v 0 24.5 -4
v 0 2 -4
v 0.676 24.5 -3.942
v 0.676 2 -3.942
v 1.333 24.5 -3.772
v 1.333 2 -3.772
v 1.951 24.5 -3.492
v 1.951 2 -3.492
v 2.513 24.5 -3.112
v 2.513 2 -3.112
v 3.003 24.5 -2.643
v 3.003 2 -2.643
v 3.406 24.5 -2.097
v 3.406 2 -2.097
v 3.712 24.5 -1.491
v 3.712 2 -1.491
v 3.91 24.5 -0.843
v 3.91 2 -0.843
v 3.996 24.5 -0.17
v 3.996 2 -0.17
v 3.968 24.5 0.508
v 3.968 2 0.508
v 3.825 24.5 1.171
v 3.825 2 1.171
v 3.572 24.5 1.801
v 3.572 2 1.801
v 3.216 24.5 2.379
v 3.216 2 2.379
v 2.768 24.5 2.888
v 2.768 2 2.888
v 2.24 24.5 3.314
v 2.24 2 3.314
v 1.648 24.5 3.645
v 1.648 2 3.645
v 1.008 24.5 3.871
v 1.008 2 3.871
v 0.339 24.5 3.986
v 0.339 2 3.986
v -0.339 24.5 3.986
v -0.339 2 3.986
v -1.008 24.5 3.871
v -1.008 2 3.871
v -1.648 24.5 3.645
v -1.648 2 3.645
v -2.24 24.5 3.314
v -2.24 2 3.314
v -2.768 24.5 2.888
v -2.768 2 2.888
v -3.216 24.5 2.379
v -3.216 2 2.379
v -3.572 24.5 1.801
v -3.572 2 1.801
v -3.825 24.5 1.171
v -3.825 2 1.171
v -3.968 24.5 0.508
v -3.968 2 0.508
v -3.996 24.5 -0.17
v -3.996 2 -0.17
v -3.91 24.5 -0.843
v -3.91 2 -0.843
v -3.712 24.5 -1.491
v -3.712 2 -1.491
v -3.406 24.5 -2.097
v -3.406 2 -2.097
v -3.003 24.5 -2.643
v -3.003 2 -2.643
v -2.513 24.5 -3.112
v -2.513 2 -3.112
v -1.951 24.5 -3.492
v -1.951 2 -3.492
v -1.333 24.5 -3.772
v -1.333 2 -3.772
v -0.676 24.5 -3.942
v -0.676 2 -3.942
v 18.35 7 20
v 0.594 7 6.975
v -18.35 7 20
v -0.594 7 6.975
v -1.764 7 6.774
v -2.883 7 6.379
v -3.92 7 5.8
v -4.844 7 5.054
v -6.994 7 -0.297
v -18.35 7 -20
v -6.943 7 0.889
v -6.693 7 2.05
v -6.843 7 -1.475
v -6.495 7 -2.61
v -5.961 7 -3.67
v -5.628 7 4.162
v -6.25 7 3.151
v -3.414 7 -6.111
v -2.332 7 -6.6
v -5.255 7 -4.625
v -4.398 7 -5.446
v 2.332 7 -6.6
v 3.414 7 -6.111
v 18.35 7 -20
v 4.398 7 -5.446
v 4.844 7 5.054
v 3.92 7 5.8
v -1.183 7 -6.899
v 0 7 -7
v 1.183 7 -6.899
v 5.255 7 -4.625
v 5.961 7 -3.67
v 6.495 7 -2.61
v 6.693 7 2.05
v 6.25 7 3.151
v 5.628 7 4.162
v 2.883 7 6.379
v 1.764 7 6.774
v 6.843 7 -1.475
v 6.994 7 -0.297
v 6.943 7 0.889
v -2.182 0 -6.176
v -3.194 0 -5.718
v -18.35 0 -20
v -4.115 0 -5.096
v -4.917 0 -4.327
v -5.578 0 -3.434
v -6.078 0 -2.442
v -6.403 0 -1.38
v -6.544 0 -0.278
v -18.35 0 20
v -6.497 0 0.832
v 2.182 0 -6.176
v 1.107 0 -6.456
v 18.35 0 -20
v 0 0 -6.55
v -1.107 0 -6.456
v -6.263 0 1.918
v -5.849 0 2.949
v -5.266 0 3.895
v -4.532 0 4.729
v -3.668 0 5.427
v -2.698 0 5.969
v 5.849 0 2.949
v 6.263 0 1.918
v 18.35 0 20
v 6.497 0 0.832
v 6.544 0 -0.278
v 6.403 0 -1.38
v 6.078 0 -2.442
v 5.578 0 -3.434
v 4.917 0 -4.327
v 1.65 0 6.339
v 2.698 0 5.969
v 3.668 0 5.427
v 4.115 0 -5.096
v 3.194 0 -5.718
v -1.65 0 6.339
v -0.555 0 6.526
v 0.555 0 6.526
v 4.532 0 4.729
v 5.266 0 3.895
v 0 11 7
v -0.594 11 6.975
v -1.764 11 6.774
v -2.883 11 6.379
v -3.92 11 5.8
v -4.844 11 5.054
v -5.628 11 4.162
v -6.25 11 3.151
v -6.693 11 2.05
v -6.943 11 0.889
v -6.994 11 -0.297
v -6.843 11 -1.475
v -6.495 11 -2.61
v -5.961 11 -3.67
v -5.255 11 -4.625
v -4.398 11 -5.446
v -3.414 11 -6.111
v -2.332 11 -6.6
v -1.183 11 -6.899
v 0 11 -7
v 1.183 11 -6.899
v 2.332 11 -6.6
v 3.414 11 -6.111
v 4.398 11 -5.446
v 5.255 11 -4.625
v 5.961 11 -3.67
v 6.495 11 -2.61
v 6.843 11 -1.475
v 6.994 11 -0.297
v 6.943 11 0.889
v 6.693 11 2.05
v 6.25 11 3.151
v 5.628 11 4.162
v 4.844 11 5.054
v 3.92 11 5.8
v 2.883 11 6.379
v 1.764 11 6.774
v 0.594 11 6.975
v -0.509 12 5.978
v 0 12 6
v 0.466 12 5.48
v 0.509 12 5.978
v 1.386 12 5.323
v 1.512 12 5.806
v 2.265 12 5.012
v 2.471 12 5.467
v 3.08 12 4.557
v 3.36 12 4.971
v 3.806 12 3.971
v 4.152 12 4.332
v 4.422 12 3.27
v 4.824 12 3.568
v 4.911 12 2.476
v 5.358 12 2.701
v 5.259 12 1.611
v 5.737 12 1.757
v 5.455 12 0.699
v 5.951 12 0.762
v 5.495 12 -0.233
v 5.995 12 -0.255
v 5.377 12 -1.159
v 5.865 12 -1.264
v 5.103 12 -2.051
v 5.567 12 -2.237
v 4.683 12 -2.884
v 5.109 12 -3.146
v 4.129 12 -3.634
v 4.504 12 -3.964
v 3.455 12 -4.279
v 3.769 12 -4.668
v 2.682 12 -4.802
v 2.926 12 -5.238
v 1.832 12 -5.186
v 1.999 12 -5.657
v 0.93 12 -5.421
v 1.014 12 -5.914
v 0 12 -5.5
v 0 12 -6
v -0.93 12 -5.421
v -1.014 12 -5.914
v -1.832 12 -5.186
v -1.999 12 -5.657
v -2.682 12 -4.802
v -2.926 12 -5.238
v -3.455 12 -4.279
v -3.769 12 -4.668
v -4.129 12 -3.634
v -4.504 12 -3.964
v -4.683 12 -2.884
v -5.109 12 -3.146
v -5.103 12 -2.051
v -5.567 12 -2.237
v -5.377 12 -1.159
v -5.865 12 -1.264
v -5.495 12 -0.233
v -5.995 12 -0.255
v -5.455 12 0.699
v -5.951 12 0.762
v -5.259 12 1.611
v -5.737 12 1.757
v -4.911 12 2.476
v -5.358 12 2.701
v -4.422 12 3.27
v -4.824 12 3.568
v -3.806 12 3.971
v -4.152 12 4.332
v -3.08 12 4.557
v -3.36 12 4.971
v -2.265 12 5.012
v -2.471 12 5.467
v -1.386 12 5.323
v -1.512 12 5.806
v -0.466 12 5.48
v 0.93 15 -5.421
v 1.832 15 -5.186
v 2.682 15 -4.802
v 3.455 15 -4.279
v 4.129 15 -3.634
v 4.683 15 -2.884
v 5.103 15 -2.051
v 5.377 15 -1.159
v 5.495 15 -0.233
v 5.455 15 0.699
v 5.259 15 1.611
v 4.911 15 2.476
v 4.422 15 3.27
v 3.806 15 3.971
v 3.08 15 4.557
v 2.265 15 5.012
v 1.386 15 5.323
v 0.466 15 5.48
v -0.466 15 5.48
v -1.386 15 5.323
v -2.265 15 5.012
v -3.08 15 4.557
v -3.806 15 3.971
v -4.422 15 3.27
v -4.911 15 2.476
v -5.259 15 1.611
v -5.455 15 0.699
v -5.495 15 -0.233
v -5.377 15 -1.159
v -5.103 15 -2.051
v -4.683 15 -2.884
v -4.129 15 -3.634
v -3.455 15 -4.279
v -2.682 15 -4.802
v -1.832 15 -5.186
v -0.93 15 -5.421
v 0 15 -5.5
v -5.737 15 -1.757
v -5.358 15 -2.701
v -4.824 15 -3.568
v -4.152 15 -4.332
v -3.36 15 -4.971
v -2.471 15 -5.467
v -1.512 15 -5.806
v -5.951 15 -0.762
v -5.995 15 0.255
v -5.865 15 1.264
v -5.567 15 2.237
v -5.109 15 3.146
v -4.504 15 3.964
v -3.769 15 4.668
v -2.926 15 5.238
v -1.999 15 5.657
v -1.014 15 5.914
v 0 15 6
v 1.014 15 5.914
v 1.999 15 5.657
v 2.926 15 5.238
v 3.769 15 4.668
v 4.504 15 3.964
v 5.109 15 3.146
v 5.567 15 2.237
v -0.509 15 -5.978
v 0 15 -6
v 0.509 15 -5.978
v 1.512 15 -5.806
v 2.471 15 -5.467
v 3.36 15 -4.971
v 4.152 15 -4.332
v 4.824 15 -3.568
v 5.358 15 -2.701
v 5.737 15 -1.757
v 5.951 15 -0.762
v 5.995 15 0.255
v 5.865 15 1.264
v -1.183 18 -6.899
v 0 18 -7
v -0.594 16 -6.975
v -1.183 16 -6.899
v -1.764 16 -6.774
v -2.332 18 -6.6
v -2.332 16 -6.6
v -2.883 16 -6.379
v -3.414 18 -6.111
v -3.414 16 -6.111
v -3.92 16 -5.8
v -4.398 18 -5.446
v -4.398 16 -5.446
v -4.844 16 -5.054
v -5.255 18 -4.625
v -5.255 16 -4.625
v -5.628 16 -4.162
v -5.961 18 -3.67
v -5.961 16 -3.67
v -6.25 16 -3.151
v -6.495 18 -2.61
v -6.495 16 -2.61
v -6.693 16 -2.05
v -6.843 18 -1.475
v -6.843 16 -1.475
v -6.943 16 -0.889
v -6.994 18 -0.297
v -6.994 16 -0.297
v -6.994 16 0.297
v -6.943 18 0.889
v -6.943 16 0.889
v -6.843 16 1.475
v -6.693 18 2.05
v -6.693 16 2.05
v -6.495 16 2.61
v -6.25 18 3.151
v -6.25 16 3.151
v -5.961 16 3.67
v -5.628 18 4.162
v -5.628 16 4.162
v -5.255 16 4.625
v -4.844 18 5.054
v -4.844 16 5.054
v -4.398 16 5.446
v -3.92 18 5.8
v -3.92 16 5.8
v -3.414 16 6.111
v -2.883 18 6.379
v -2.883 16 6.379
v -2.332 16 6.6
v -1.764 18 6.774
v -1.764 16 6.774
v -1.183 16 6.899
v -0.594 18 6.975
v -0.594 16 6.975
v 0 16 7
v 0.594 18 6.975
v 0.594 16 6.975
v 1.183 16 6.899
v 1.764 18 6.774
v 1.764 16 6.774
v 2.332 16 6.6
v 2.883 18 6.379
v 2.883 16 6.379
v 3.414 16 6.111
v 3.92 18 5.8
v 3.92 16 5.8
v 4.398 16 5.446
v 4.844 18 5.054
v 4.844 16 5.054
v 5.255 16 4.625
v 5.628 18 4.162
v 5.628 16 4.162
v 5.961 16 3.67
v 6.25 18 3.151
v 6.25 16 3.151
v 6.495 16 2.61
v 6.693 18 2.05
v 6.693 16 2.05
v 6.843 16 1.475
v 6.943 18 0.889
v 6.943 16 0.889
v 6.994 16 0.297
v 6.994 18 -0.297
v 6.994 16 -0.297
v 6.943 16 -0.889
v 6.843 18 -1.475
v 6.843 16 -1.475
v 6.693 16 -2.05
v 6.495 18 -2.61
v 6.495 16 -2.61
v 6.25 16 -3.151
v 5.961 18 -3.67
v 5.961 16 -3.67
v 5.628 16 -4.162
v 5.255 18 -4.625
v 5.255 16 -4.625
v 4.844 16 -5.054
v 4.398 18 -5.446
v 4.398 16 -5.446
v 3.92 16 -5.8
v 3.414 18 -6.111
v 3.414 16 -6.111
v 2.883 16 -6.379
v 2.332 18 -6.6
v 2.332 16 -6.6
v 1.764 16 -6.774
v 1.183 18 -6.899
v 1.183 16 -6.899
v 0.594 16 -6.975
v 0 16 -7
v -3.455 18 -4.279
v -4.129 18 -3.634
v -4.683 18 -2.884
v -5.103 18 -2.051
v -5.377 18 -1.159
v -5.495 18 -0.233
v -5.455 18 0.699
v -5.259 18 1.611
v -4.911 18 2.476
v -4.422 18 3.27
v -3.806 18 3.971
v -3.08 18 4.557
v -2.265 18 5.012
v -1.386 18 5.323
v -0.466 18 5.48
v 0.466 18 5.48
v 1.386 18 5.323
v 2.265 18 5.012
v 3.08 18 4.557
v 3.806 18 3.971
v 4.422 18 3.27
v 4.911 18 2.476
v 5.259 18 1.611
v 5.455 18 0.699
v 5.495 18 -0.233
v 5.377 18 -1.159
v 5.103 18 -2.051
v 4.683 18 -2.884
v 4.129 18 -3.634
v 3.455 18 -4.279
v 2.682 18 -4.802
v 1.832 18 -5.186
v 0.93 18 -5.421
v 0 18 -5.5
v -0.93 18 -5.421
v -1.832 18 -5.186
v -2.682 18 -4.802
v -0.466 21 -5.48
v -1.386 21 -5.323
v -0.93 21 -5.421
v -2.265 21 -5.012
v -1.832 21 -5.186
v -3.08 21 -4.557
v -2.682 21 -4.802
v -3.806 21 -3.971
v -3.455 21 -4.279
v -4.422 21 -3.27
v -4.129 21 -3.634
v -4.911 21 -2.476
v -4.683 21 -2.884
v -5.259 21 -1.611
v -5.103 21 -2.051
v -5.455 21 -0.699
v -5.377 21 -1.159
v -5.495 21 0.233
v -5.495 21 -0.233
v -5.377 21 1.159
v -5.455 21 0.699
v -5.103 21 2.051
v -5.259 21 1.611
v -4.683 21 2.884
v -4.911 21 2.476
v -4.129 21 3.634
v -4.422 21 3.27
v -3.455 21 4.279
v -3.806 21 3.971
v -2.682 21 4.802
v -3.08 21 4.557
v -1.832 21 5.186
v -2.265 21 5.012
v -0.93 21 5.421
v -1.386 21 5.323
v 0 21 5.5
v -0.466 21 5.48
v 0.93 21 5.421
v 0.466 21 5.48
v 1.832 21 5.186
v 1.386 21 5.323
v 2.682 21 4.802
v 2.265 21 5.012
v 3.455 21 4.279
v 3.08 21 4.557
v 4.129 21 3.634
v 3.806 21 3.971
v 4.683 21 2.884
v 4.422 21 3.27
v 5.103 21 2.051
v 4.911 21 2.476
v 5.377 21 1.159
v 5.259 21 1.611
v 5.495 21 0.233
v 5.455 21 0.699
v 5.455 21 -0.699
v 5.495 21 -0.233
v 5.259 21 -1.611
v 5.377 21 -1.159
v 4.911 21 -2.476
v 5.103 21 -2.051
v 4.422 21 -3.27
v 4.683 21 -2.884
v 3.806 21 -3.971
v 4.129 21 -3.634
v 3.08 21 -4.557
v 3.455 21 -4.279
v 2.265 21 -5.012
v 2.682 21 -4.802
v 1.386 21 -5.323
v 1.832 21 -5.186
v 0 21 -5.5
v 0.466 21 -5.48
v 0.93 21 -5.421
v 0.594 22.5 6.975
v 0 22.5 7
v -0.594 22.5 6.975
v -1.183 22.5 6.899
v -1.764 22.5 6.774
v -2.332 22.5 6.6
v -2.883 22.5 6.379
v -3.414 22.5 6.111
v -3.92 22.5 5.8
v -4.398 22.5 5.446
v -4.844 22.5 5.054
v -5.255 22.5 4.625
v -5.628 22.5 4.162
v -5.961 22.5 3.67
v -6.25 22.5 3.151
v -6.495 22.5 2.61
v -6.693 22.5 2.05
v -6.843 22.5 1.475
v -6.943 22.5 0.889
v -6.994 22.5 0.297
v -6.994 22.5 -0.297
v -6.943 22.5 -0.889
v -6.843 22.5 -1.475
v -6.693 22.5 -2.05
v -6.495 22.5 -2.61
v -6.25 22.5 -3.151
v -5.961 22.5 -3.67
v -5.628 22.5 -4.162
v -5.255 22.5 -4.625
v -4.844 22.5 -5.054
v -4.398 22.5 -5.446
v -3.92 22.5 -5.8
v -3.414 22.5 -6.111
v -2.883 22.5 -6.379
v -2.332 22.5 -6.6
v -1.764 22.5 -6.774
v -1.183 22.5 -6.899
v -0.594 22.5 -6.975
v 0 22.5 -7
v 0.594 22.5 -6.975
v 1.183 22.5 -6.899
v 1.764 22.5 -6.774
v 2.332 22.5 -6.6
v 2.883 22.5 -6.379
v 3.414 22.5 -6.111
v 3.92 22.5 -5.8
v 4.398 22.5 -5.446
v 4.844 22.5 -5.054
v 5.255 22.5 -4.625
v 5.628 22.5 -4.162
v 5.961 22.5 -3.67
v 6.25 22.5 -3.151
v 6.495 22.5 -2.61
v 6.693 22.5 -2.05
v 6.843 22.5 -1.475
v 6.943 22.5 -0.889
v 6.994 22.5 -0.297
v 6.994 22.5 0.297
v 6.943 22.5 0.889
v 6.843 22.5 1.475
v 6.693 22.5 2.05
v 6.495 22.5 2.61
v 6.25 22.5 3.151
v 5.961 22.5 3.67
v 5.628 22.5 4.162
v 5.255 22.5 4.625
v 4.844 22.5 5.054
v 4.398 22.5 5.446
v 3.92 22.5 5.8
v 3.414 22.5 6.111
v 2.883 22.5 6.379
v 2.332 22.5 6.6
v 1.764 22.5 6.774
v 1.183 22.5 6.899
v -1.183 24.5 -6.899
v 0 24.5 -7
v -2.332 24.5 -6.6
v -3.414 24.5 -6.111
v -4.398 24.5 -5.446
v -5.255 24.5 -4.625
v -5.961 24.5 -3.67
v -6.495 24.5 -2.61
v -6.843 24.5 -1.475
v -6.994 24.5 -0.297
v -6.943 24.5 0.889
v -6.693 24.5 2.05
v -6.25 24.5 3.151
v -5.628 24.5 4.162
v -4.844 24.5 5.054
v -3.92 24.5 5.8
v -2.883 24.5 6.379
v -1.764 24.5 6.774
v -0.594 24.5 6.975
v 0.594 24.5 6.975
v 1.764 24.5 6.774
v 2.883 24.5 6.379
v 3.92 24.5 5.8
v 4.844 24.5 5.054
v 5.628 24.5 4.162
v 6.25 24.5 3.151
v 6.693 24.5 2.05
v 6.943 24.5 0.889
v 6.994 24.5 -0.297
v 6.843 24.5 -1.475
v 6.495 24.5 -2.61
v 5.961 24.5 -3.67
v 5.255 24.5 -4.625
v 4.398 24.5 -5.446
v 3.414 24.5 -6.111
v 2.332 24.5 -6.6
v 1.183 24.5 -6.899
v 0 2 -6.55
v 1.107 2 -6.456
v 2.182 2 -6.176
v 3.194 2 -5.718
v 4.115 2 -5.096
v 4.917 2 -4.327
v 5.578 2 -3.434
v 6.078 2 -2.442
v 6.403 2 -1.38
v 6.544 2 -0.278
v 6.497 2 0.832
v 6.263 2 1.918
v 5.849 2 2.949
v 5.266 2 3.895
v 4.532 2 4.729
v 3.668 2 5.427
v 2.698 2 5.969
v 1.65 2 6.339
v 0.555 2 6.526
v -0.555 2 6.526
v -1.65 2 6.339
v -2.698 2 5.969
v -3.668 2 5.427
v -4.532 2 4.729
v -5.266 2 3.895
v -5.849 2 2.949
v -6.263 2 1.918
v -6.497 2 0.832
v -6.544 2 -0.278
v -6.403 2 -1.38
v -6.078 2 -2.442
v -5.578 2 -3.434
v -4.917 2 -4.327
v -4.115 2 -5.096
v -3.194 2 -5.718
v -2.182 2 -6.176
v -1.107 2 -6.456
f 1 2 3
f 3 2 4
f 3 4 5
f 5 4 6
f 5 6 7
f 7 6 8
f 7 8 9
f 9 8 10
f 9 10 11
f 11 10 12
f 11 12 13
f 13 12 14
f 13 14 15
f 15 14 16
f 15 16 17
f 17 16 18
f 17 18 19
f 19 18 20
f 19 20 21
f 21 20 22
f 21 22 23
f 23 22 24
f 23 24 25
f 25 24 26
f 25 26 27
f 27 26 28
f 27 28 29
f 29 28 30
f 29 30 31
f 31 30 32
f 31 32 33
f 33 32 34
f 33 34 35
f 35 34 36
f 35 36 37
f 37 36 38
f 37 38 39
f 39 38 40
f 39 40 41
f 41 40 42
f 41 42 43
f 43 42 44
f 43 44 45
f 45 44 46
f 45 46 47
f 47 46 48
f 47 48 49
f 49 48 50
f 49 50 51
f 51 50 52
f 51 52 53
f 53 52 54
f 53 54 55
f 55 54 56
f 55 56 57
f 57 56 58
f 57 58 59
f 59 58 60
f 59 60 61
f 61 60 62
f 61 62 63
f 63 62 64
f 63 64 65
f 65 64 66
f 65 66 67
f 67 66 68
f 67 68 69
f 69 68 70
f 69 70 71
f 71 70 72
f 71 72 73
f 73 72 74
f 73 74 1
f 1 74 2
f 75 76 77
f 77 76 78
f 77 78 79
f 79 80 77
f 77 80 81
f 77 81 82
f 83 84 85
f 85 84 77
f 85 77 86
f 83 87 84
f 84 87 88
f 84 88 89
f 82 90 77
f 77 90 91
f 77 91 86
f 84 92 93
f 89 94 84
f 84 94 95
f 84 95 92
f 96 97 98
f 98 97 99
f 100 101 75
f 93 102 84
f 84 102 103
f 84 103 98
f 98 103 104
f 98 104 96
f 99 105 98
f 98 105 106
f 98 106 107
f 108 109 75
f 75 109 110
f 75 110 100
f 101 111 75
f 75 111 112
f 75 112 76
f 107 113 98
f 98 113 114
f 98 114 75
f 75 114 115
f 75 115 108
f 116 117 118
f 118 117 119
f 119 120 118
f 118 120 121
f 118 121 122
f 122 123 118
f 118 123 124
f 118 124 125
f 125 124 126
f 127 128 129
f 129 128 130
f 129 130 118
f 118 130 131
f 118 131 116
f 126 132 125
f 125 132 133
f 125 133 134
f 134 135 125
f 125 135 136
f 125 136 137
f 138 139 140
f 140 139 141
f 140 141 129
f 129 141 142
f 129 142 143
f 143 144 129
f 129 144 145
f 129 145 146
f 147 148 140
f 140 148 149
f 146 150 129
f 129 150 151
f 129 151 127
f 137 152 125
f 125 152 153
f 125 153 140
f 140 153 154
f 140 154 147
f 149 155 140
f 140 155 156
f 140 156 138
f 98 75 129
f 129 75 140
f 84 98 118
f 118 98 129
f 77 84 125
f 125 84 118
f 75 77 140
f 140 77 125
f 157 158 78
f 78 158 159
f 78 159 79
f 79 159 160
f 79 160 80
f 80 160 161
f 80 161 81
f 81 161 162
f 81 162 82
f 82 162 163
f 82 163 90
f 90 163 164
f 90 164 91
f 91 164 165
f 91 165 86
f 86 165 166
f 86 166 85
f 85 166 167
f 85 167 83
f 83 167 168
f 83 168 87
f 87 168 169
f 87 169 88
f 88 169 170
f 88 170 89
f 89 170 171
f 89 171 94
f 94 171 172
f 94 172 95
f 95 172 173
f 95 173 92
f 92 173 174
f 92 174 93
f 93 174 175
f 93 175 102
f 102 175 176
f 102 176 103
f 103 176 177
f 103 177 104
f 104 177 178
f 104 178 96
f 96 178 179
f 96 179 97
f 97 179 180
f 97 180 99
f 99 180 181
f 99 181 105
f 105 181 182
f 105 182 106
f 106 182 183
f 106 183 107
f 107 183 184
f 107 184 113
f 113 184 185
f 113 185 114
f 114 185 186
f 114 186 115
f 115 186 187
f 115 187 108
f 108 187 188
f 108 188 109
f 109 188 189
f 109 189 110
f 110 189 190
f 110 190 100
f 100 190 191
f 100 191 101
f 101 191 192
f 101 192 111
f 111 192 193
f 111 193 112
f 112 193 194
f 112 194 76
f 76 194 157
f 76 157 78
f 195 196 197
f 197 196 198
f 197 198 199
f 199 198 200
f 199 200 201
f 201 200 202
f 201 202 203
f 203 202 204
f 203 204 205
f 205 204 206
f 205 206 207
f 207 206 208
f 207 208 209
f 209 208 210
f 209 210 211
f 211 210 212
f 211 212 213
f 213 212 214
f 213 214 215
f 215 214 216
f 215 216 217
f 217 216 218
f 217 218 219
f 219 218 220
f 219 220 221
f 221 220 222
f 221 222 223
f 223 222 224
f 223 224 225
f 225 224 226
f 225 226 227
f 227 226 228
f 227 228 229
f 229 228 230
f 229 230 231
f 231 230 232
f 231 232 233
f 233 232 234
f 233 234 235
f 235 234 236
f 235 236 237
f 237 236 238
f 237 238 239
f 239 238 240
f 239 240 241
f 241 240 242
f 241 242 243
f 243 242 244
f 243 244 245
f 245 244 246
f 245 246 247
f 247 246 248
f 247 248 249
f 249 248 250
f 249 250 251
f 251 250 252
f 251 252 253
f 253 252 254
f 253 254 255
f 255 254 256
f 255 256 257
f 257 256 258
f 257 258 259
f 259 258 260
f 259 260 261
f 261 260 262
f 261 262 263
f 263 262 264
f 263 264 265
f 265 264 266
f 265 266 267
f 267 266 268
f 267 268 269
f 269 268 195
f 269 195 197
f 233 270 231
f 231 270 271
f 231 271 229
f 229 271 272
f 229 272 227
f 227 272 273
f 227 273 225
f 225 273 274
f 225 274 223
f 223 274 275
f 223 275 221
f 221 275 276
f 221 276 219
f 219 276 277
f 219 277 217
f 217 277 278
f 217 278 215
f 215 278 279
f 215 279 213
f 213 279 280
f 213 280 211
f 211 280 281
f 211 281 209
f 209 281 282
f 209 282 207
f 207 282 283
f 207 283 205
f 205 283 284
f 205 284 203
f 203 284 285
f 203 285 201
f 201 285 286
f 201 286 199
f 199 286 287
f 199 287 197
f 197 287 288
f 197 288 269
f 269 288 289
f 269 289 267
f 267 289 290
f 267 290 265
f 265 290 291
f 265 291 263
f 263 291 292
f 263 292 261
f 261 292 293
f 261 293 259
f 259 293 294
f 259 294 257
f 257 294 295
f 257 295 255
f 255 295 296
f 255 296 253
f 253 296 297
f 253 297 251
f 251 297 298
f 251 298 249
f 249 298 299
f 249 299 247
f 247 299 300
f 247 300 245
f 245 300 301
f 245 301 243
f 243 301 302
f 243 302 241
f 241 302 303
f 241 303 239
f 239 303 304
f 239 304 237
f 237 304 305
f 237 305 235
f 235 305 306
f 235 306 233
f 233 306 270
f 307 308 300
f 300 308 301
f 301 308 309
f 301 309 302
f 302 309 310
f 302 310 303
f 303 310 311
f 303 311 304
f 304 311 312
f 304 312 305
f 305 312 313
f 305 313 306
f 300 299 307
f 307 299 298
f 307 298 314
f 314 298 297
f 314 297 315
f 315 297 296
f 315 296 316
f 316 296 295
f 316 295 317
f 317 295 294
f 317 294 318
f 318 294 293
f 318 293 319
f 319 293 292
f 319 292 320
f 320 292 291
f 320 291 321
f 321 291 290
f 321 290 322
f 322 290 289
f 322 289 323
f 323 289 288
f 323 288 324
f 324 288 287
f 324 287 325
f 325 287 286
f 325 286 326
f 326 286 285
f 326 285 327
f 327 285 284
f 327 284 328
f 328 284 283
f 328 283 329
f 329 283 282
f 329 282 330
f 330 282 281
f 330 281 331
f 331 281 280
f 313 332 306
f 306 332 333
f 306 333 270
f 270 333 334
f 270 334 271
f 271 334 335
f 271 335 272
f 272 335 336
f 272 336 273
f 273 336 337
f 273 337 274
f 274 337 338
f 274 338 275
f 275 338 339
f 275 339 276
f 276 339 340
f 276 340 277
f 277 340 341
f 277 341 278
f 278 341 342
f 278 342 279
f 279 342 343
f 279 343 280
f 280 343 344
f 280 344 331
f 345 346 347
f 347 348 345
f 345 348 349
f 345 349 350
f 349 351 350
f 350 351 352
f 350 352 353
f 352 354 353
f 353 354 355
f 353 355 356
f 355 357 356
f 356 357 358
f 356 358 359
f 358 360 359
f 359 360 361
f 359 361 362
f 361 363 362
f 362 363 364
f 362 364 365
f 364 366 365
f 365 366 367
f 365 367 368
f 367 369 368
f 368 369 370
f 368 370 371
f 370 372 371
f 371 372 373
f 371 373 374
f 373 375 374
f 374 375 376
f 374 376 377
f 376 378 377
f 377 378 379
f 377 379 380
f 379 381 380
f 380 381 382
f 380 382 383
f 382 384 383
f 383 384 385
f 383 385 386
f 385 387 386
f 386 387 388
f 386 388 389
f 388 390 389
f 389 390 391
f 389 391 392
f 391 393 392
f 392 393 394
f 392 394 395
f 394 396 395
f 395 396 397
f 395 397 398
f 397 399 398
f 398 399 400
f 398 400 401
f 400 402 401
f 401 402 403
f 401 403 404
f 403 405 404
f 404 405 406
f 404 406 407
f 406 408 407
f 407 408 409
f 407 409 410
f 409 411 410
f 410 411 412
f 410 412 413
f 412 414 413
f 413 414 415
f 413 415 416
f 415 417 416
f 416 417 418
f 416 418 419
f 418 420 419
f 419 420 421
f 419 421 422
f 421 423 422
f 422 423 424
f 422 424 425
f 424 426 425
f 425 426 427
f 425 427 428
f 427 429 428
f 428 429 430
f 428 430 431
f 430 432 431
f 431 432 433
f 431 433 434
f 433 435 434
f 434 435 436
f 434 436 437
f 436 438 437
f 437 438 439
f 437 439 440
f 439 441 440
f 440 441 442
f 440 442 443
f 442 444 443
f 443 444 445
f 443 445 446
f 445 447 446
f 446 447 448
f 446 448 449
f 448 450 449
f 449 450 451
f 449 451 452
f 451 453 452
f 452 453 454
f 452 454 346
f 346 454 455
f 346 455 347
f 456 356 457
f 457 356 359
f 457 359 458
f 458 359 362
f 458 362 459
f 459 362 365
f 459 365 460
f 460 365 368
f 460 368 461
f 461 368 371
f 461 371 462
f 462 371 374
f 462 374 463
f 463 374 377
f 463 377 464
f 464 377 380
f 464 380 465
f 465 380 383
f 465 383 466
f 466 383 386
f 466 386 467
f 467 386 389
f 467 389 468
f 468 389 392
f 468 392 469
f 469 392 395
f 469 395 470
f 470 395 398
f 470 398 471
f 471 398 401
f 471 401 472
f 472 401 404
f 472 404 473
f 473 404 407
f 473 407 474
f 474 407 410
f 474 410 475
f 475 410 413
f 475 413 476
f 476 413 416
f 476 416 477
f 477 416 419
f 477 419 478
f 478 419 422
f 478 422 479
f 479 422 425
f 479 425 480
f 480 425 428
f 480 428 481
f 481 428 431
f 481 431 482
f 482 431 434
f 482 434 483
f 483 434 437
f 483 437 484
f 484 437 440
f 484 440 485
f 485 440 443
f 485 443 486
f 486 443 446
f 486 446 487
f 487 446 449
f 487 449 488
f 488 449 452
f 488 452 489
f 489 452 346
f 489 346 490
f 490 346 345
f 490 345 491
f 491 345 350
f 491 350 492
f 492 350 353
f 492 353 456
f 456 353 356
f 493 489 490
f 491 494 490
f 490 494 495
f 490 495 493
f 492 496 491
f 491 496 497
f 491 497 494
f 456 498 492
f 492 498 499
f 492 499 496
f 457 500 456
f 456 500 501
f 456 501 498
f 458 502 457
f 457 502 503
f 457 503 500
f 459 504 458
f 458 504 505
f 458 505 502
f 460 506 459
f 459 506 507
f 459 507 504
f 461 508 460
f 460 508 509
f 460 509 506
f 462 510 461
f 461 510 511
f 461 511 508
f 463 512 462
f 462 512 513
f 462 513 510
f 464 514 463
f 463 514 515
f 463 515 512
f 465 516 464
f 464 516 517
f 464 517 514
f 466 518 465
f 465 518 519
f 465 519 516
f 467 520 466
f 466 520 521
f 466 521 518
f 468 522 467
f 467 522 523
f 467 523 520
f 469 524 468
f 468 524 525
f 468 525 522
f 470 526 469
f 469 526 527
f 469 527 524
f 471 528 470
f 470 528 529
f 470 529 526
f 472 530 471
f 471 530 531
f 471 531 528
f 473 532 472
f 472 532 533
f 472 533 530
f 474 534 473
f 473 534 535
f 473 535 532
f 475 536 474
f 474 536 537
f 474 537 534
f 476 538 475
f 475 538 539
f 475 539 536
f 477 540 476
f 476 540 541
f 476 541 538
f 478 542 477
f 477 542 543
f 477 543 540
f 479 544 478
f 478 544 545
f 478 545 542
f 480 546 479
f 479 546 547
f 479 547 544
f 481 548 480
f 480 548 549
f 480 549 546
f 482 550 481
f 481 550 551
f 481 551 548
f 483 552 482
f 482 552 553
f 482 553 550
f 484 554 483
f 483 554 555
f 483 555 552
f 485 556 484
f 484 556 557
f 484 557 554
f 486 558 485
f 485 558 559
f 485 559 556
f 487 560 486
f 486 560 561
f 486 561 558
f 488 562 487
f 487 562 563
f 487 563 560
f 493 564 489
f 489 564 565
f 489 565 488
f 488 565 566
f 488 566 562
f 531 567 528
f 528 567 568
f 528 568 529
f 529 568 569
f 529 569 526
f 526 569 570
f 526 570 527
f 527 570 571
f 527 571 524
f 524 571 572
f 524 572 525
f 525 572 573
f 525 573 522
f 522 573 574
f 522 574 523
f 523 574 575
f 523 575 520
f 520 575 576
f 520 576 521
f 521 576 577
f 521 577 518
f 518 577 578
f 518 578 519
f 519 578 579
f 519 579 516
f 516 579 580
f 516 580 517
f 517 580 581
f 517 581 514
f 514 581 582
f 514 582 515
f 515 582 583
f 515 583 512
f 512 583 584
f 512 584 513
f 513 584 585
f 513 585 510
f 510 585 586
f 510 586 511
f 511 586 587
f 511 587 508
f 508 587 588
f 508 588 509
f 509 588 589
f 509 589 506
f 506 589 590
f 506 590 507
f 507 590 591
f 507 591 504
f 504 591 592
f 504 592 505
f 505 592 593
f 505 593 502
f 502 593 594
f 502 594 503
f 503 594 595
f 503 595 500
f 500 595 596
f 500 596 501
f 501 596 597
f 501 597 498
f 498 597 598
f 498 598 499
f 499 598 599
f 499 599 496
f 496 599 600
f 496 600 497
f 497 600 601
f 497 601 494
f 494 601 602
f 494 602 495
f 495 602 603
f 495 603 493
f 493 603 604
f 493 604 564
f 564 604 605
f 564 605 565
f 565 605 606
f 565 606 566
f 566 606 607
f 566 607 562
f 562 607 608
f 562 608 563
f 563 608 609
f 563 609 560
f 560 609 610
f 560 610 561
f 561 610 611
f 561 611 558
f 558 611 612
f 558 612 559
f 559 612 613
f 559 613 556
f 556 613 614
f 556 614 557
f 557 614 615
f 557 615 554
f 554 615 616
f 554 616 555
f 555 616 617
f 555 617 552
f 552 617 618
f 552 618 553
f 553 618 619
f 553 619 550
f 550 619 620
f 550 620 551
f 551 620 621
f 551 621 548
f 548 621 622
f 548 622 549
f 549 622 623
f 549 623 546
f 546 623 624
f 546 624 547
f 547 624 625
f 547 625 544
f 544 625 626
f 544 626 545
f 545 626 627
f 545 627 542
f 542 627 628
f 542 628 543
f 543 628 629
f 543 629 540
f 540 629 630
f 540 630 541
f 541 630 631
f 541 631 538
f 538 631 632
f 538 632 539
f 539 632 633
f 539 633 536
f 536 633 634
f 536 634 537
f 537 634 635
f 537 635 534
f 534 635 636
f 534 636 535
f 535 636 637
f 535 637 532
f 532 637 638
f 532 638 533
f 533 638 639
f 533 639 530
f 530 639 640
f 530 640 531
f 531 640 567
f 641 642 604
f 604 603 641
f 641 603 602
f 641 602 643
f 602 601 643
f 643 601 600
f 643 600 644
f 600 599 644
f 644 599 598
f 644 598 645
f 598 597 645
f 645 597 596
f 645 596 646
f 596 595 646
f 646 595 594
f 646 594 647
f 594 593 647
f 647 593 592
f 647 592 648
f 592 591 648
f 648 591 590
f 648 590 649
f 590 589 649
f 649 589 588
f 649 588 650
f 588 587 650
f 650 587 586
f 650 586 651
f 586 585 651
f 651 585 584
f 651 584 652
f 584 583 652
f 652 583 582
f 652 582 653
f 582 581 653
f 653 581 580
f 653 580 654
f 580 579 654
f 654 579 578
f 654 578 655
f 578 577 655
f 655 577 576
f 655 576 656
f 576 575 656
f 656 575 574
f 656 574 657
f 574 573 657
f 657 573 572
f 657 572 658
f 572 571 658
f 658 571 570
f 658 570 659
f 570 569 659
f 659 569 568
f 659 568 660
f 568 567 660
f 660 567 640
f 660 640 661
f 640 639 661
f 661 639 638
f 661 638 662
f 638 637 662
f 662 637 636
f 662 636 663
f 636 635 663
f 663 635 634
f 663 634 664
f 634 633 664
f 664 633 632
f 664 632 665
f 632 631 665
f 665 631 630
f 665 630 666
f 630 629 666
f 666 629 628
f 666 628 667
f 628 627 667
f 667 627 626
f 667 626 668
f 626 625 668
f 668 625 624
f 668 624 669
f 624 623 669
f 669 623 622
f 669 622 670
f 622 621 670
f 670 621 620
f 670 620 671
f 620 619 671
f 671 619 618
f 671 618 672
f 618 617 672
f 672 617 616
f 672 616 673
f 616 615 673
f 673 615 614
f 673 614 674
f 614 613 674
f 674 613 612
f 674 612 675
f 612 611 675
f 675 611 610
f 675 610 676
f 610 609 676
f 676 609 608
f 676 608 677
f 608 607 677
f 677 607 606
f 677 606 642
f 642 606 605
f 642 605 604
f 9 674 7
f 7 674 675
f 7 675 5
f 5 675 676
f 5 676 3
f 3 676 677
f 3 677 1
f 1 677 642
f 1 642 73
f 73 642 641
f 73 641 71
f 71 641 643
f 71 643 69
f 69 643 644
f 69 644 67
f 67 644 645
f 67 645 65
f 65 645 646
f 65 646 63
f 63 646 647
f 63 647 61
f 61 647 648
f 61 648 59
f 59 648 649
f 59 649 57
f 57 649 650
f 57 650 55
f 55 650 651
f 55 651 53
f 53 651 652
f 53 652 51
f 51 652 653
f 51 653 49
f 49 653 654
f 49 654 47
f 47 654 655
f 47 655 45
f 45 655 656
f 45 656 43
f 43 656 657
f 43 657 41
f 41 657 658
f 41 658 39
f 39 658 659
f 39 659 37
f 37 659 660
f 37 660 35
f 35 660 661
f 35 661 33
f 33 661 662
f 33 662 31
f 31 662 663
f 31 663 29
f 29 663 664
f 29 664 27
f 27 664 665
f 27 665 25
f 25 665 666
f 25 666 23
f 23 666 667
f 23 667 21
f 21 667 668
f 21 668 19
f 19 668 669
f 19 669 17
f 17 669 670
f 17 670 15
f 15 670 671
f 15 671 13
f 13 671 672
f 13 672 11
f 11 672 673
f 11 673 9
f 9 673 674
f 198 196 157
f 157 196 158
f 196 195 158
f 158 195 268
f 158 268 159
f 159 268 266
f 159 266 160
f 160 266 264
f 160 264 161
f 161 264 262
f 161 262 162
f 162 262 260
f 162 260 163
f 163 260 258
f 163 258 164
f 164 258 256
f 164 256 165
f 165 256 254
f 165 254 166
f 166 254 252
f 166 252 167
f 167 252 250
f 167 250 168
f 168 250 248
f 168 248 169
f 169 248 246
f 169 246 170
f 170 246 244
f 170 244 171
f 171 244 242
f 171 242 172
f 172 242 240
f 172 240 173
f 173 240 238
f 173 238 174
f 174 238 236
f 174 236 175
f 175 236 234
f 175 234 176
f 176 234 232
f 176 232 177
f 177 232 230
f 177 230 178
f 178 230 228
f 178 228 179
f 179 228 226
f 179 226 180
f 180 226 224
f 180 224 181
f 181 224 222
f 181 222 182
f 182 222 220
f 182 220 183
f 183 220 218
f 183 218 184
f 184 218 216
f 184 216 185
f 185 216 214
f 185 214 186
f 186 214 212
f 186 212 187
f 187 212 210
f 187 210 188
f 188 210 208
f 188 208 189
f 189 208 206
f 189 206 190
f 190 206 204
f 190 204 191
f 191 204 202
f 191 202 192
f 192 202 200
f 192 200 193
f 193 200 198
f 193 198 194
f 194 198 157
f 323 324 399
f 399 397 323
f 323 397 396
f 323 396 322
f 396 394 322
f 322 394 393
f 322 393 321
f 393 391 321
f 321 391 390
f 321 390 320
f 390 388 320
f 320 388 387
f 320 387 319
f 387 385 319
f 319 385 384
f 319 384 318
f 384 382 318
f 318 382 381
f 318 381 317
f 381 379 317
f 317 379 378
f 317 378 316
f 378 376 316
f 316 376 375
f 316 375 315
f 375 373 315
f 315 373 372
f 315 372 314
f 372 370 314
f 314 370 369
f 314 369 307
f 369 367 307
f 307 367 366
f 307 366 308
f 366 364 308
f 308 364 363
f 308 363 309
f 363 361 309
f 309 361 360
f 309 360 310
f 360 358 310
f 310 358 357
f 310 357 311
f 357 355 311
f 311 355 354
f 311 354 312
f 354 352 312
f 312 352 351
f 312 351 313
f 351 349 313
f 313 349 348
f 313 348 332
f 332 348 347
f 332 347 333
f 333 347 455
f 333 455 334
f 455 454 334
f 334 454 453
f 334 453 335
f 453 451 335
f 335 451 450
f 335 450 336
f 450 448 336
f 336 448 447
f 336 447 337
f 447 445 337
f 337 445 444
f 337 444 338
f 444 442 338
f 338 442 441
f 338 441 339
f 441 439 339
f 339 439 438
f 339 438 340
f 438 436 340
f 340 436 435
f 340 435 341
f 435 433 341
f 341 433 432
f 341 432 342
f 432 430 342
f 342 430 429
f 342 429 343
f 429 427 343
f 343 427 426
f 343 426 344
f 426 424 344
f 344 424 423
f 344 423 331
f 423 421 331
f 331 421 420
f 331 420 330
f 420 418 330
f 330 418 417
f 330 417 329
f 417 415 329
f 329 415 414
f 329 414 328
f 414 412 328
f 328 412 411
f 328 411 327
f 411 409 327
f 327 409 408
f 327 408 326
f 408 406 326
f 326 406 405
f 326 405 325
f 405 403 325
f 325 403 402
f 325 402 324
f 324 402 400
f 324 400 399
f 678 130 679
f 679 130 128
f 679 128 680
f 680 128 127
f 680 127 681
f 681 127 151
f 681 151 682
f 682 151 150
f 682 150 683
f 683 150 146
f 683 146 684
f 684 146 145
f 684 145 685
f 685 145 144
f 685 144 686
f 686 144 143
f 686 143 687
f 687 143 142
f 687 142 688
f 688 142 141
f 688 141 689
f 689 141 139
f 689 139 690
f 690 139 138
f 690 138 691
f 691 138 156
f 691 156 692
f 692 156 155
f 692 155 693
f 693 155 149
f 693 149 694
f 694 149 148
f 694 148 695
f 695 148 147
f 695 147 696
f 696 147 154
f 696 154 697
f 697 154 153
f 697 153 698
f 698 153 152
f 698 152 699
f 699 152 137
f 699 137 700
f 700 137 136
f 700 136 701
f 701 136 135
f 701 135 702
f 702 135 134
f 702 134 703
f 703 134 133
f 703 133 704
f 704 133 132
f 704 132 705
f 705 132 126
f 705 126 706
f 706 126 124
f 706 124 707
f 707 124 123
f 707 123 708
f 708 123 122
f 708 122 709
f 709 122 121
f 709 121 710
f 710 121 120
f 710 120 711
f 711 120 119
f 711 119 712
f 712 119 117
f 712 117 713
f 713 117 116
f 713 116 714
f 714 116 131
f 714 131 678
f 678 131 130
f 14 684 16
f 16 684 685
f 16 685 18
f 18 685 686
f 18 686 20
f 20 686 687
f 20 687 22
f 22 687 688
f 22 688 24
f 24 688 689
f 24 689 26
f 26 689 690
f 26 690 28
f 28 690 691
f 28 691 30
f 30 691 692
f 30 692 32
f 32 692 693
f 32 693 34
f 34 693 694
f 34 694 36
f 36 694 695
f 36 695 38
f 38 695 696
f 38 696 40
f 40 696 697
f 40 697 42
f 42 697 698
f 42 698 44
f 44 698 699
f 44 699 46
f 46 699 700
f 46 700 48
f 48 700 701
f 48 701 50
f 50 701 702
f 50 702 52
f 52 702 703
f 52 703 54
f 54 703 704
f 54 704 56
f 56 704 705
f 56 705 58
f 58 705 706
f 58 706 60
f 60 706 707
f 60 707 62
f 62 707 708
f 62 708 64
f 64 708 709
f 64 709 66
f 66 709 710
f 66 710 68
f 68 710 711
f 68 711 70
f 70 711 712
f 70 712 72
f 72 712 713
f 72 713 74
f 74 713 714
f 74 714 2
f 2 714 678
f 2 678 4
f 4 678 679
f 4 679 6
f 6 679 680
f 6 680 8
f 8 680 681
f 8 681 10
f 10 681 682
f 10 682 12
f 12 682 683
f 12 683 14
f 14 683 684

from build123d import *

# Parameters (mm, degrees)
CROQUIS1_W              = 36.7
CROQUIS1_H              = 40
CROQUIS1_R              = 4
SALIENTE_EXTRUIR1_DEPTH = 7
CHAFL_N1_SIZE           = 1
CROQUIS3_R              = 6.55
CORTAR_EXTRUIR1_DEPTH   = 2


with BuildPart() as part:
    # Croquis1 → Saliente-Extruir1 (new body)
    with BuildSketch(Plane(origin=(0, 0, 0), x_dir=(1, 0, 0), z_dir=(0, 1, 0))):
        Rectangle(CROQUIS1_W, CROQUIS1_H)
        with Locations(Location((0, 0, 0), (0, 0, 270))):
            Circle(CROQUIS1_R, mode=Mode.SUBTRACT)
    extrude(amount=SALIENTE_EXTRUIR1_DEPTH)

    # Croquis2 → Revolución1 (revolve)
    with BuildSketch(Plane(origin=(0, 0, 0), x_dir=(0, 0, -1), z_dir=(1, 0, 0))):
        Polygon((7, 7), (7, 12), (5.5, 12), (5.5, 15), (7, 15), (7, 18), (5.5, 18), (5.5, 21), (7, 22.5), (7, 24.5), (4, 24.5), (4, 7), align=None)
    revolve(axis=Axis((0, 7, 0), (0, 1, 0)))

    # Chaflán1
    chafl_n1_edges = [part.edges().sort_by_distance(p)[0] for p in [
        (0, 12, 7),
        (0, 15, 7),
    ]]
    chamfer(chafl_n1_edges, length=CHAFL_N1_SIZE)

    # Croquis3 → Cortar-Extruir1 (cut)
    with BuildSketch(Plane.XZ):
        with Locations(Location((0, 0, 0), (0, 0, 270))):
            Circle(CROQUIS3_R)
    extrude(amount=-CORTAR_EXTRUIR1_DEPTH, mode=Mode.SUBTRACT)


solid = part.part
